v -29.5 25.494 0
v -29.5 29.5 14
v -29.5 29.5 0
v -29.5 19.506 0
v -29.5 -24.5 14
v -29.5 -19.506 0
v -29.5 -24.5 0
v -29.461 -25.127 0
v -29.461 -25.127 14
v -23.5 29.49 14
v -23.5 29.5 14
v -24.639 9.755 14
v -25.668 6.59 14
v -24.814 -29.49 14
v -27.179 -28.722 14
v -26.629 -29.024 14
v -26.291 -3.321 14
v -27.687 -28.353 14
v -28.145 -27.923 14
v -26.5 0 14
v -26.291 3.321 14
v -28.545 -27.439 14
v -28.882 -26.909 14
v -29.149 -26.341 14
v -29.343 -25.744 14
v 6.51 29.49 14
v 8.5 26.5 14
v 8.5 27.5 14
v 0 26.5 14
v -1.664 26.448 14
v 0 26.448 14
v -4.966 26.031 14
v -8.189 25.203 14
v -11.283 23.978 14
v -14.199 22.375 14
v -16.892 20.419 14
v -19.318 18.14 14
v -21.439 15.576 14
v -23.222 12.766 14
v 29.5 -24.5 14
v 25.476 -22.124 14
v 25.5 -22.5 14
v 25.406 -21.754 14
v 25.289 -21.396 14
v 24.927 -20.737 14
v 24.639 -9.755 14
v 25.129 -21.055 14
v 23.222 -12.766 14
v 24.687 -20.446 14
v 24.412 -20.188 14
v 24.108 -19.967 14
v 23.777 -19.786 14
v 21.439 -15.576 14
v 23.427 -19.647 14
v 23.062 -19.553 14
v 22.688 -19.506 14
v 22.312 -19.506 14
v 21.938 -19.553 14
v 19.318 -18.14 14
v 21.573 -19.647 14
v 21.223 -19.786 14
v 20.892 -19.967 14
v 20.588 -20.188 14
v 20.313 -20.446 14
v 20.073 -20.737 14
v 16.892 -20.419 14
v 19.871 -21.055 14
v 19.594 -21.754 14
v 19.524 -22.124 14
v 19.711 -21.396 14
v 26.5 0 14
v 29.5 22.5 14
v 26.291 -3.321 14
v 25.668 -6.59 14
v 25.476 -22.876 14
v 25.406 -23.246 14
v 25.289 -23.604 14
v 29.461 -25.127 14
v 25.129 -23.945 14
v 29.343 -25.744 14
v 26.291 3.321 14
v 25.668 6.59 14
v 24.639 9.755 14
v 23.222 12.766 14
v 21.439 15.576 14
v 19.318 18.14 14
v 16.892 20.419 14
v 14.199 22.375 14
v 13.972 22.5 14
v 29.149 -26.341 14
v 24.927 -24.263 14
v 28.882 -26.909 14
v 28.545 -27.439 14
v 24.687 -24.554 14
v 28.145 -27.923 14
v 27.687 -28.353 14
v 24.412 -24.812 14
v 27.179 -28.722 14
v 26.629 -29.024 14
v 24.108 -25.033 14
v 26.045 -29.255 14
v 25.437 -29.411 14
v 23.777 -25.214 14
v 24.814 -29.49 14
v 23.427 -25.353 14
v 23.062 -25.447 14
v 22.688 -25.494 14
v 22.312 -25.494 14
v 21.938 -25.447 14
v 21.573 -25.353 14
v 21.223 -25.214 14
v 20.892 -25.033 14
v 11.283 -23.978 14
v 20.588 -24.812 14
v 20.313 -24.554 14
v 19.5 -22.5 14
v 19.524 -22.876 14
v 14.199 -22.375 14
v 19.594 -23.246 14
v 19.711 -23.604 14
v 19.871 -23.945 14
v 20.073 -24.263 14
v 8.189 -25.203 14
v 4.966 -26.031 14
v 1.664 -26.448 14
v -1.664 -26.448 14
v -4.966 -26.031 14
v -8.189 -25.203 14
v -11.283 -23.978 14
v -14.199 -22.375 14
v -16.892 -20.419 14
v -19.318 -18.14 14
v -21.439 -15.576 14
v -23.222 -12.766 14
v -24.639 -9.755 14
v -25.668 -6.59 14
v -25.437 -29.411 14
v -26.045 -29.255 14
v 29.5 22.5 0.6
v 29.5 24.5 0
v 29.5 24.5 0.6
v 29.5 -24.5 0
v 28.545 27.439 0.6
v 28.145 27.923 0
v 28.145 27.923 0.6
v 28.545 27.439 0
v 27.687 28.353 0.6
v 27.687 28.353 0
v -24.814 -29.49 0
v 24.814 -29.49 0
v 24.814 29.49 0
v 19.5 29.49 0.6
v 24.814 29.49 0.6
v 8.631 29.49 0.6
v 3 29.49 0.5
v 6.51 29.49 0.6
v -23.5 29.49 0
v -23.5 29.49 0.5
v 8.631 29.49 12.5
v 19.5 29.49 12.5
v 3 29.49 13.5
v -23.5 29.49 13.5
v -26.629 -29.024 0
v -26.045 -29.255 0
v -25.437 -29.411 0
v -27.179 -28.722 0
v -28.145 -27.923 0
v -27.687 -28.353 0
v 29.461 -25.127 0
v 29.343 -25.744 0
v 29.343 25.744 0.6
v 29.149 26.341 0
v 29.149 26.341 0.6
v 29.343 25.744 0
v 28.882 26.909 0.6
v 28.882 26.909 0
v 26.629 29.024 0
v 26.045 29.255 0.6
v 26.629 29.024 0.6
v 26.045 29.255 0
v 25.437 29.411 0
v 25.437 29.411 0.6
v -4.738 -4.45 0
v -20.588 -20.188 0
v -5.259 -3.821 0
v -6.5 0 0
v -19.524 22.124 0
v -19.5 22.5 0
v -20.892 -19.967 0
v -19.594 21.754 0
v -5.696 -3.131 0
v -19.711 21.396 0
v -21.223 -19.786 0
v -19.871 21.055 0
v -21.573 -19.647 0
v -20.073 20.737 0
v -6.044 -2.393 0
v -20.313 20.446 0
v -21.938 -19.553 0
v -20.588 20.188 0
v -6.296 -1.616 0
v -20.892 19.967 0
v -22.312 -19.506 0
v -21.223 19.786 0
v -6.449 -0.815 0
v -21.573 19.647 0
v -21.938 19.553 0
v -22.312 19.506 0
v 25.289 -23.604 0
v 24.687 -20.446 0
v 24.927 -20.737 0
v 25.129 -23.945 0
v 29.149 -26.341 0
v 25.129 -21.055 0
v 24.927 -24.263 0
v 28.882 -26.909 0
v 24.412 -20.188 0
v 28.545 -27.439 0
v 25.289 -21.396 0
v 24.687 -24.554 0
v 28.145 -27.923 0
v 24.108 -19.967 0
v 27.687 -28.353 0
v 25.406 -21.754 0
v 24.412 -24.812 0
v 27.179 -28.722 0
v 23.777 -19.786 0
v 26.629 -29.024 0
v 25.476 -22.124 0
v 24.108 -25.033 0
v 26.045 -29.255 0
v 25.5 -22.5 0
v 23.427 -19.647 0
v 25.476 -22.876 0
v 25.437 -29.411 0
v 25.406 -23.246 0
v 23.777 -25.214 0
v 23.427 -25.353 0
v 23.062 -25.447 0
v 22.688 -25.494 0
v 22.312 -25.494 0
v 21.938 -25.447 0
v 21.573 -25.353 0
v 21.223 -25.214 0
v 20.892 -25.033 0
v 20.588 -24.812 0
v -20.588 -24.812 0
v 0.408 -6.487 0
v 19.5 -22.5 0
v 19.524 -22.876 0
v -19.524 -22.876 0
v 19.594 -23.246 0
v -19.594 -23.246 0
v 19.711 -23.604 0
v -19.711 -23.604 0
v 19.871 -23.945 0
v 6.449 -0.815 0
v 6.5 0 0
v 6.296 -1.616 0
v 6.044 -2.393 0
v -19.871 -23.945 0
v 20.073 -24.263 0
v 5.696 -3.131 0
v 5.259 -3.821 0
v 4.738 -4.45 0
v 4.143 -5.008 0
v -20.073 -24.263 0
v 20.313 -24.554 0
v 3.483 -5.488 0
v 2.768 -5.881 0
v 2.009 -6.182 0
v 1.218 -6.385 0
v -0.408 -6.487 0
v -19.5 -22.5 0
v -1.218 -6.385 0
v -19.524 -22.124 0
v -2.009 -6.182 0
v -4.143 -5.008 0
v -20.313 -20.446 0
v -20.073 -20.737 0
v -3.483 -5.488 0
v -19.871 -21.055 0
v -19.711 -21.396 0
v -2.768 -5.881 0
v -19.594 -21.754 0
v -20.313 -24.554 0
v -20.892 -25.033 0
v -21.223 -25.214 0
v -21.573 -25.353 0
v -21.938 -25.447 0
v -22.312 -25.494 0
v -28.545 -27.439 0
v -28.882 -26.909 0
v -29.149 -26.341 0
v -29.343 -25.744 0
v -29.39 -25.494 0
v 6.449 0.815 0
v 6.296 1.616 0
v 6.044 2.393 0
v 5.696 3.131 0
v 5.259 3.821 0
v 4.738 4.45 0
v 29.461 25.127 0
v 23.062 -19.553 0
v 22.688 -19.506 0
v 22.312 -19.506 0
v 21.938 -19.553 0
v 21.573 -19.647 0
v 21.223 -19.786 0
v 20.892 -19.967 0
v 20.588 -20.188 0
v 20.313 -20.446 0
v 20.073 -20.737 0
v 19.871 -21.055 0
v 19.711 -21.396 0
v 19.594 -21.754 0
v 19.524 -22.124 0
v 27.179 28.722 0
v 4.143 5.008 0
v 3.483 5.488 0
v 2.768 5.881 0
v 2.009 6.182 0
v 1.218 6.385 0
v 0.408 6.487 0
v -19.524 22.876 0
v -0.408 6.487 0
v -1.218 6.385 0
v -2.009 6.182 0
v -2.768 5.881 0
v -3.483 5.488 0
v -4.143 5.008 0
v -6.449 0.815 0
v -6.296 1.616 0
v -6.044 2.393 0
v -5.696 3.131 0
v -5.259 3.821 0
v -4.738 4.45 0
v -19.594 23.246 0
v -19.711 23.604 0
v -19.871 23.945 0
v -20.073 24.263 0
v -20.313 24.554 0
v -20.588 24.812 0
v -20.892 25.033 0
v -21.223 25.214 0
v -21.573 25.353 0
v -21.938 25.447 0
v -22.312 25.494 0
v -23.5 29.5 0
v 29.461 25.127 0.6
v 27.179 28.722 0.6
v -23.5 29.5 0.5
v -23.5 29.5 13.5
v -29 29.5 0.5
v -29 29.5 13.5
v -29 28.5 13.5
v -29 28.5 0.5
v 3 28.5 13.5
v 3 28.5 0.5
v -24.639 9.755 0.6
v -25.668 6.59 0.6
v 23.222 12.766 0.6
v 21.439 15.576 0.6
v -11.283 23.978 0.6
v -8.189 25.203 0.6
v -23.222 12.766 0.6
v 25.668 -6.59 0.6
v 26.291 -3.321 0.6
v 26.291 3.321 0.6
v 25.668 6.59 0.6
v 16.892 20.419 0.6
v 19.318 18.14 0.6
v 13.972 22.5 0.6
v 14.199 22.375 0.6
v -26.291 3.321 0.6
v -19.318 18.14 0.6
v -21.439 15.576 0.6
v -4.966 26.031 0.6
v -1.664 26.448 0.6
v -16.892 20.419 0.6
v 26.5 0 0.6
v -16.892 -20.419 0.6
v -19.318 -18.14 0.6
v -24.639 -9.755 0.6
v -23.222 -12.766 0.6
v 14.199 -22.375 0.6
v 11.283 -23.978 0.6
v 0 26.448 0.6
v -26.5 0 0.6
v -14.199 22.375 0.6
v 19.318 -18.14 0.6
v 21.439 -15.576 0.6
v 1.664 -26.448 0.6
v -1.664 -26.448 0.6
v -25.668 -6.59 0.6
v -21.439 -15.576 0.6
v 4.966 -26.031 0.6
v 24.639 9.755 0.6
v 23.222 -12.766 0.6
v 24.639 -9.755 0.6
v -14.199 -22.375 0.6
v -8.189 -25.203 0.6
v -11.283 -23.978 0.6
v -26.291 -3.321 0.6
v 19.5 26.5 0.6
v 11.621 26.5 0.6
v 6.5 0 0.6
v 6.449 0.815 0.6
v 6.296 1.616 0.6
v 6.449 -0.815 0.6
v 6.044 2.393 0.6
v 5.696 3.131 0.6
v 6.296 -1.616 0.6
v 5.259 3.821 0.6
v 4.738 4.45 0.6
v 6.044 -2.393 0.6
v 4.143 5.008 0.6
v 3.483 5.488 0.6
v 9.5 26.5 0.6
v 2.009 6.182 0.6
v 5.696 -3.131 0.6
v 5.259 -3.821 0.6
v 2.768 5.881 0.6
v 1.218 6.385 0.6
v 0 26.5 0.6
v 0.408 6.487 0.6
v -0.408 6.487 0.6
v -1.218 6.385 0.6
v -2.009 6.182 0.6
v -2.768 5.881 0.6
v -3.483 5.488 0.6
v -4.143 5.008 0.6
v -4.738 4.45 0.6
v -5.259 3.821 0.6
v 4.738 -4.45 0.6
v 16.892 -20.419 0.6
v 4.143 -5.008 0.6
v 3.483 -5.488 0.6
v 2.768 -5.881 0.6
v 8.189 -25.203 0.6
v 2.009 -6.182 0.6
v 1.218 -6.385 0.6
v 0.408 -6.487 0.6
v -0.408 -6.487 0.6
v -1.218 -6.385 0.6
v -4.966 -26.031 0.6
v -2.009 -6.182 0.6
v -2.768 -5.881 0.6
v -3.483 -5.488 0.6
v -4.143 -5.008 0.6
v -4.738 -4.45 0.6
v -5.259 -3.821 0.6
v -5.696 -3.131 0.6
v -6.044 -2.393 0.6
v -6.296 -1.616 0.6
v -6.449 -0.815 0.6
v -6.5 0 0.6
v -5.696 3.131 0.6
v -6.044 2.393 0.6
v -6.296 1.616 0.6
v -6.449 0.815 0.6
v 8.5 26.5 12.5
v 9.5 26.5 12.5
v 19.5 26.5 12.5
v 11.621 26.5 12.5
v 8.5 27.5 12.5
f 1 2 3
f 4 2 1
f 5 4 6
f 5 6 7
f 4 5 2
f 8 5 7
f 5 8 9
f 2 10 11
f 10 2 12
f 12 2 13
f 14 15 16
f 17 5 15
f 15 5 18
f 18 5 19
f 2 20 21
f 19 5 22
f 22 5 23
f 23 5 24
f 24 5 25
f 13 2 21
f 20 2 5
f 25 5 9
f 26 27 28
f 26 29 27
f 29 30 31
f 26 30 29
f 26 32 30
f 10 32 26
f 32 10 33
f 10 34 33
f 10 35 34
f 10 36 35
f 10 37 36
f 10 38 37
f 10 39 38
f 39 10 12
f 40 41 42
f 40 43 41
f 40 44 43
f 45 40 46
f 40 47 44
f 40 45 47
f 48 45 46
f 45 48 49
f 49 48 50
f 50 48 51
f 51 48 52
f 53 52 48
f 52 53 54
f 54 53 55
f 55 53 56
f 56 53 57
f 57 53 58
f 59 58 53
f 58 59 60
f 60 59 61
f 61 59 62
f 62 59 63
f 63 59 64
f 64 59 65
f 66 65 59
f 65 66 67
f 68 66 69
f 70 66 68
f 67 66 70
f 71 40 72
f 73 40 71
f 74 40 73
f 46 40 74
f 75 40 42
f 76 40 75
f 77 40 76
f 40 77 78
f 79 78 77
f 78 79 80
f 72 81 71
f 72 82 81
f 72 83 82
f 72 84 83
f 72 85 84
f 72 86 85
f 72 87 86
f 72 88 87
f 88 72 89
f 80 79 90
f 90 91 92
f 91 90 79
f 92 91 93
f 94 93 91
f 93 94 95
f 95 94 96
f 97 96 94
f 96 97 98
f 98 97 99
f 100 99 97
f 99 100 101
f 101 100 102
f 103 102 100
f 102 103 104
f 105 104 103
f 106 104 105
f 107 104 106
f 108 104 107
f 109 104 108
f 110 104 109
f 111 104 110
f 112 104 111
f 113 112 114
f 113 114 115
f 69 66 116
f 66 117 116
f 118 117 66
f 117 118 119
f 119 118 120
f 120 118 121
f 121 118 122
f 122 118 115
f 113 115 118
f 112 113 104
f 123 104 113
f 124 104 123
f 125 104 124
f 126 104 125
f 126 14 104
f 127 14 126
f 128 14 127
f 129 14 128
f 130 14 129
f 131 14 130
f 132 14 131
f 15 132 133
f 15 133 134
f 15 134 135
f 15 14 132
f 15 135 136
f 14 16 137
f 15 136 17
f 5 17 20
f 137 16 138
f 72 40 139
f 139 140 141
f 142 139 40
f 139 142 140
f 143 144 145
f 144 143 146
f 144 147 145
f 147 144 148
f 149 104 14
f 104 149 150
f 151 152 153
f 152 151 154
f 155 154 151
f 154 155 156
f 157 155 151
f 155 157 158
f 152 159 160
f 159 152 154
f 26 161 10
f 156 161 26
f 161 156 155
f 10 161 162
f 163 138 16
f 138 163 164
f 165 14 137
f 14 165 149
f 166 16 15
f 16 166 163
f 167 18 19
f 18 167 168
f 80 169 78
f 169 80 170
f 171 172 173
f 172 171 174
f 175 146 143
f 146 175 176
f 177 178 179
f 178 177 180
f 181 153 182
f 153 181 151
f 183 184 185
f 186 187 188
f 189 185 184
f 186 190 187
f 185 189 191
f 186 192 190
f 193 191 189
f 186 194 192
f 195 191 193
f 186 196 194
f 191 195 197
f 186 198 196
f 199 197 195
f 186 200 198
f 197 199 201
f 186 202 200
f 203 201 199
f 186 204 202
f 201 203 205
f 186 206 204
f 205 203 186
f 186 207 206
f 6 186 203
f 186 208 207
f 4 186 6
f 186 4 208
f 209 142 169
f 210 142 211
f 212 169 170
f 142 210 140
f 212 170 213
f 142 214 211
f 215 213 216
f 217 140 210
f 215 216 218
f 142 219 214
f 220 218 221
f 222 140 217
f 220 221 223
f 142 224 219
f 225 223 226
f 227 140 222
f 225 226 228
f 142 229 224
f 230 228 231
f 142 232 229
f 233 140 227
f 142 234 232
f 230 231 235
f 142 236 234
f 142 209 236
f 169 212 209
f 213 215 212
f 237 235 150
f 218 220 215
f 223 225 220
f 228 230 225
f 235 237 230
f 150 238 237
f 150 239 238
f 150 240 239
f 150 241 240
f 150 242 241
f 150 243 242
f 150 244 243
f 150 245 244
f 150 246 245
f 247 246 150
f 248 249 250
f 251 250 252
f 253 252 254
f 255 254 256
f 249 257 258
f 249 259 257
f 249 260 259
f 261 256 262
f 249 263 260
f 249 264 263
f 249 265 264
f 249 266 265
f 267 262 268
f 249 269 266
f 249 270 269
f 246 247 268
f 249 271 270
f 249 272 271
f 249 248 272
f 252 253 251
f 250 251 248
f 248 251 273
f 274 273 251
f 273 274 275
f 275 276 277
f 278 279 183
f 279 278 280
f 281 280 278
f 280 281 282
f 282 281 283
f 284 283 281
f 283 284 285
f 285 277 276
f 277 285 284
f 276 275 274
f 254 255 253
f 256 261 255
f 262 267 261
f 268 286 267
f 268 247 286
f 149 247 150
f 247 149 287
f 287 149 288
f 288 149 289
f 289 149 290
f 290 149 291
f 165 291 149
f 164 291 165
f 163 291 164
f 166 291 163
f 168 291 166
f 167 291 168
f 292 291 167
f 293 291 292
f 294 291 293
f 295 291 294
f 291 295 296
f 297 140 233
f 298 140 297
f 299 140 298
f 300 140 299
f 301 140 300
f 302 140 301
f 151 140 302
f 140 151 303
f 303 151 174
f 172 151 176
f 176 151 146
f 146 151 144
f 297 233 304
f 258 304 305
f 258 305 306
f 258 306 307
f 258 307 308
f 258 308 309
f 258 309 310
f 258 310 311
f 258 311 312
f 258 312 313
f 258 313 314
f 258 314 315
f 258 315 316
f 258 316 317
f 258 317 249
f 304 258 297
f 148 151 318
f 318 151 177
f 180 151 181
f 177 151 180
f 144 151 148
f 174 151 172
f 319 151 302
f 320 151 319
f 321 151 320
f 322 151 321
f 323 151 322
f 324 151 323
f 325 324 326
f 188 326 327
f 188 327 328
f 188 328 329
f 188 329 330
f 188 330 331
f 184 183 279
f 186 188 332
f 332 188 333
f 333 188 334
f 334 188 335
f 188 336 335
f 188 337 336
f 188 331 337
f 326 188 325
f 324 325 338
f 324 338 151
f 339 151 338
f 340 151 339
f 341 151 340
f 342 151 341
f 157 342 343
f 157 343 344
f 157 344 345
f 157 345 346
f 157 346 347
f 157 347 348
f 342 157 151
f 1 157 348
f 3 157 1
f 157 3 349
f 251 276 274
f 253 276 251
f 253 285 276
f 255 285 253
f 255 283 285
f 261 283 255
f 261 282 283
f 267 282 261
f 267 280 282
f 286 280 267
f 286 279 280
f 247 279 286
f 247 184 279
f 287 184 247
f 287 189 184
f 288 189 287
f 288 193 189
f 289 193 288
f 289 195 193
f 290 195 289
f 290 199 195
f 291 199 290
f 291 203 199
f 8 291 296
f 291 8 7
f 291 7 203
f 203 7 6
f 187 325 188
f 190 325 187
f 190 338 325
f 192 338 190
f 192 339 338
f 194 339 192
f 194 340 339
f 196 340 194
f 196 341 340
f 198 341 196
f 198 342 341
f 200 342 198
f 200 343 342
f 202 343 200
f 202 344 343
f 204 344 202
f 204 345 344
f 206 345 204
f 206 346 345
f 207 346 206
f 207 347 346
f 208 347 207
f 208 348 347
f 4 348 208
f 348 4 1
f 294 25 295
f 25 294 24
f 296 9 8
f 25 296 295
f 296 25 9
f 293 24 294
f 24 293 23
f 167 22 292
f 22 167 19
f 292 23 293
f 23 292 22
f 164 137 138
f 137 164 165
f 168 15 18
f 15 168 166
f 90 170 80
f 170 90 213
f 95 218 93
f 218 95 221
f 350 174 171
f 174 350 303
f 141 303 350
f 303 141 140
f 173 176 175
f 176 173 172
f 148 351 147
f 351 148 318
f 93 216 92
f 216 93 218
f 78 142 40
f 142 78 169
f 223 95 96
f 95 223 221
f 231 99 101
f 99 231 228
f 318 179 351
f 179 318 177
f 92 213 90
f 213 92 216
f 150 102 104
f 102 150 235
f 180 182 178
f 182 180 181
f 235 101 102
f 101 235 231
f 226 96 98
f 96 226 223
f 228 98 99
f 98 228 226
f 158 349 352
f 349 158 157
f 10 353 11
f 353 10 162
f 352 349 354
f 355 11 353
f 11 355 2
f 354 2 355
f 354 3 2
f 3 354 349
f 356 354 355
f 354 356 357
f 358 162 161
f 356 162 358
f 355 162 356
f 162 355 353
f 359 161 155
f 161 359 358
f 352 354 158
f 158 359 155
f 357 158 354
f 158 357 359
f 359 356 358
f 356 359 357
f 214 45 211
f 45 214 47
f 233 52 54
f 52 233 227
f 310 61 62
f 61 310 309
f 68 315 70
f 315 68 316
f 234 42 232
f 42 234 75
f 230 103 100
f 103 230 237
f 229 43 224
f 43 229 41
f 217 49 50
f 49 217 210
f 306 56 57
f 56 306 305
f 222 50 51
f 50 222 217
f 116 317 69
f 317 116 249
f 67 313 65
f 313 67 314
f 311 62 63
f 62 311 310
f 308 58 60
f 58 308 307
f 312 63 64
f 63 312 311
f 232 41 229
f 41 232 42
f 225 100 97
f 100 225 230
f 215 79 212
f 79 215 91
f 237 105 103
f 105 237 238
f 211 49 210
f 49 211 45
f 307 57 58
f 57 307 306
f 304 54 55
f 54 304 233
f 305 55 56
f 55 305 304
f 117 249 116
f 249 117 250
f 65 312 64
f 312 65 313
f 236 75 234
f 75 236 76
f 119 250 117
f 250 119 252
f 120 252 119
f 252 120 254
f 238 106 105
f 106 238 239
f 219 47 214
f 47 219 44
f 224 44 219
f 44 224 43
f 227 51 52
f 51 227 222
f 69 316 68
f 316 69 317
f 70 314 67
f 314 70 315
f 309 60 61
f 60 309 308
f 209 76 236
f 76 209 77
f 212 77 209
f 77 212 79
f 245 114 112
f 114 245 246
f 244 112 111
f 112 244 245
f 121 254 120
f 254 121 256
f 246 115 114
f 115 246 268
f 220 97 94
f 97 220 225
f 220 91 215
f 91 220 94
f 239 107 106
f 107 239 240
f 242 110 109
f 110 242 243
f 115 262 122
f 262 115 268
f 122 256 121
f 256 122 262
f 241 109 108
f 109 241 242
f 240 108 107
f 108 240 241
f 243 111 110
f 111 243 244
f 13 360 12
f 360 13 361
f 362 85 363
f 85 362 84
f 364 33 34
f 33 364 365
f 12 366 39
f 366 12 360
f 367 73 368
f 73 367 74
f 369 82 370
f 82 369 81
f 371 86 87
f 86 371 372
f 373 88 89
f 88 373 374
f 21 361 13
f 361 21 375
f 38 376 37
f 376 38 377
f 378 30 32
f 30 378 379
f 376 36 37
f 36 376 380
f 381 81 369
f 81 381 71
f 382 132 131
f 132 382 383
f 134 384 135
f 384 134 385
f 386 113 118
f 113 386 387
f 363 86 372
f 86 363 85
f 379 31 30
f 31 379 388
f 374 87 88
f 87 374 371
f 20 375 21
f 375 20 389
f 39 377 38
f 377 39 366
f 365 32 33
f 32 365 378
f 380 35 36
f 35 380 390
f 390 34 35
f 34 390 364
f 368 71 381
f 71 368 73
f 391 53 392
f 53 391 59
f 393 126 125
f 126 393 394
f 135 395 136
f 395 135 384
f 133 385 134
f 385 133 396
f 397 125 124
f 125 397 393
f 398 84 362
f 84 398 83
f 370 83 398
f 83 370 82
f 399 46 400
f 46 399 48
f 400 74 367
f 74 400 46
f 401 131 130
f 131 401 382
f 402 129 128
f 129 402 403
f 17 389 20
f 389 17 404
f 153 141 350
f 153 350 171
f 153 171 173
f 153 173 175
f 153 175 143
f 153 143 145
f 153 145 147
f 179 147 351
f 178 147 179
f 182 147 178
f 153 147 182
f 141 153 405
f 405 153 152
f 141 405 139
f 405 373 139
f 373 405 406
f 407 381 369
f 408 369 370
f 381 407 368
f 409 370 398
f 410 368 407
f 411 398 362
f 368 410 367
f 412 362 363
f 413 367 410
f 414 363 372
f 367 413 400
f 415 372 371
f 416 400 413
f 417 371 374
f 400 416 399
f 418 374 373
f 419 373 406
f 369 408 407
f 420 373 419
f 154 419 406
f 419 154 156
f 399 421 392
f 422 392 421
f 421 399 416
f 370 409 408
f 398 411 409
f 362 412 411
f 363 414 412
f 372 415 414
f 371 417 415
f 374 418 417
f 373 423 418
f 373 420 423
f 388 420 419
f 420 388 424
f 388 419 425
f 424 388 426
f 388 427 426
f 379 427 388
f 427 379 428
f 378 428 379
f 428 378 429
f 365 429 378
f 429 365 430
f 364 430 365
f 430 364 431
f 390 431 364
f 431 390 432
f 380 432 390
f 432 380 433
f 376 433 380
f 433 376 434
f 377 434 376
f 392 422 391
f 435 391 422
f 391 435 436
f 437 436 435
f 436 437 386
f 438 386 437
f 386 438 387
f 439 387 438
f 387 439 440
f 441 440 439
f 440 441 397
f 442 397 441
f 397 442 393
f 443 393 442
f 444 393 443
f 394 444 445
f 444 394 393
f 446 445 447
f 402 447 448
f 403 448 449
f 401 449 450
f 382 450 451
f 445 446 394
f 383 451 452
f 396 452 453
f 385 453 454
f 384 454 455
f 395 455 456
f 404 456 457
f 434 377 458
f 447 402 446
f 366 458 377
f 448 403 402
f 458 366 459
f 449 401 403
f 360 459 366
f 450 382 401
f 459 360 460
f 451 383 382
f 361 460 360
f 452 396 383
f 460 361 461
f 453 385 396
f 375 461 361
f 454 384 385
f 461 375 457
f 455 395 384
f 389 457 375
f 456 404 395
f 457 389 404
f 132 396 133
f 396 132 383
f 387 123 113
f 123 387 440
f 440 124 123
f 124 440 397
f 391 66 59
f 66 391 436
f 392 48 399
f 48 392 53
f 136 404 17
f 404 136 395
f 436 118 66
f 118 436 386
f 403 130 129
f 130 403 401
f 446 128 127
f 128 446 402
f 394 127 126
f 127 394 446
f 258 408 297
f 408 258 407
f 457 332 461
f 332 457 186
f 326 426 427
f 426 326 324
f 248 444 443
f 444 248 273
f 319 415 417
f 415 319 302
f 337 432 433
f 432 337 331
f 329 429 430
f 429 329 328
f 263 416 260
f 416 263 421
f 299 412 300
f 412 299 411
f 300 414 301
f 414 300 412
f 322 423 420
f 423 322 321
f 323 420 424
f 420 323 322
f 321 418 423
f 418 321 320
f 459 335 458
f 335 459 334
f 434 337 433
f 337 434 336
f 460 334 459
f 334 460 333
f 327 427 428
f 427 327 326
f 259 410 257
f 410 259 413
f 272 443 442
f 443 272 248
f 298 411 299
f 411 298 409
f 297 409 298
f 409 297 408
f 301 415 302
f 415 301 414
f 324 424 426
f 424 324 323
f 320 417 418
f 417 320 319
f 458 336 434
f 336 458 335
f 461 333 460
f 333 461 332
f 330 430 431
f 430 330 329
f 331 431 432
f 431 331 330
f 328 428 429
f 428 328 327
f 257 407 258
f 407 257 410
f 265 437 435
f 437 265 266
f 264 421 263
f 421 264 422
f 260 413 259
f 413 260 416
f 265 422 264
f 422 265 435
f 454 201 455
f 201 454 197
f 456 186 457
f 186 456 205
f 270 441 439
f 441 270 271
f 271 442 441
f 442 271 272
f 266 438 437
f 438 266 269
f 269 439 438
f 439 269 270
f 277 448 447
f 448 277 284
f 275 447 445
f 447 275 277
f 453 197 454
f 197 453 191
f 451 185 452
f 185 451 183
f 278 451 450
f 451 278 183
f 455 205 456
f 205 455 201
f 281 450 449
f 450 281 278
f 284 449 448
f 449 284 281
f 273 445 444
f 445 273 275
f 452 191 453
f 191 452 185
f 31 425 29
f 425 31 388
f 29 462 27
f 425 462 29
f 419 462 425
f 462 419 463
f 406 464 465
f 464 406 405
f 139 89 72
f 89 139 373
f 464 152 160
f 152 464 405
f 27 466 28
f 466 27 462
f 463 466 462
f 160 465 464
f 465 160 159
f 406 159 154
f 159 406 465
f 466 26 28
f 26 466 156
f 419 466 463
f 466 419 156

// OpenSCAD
$fn = 50;


difference() {
	union() {
		hull() {
			translate(v = [-24.5000000000, 24.5000000000, 0]) {
				cylinder(h = 14, r = 5);
			}
			translate(v = [24.5000000000, 24.5000000000, 0]) {
				cylinder(h = 14, r = 5);
			}
			translate(v = [-24.5000000000, -24.5000000000, 0]) {
				cylinder(h = 14, r = 5);
			}
			translate(v = [24.5000000000, -24.5000000000, 0]) {
				cylinder(h = 14, r = 5);
			}
		}
		translate(v = [-29.5000000000, 23.5000000000, 0]) {
			cube(size = [6, 6, 14]);
		}
	}
	union() {
		translate(v = [-30.0000000000, -22.5000000000, -250.0000000000]) {
			rotate(a = [0, 0, 0]) {
				difference() {
					union() {
						hull() {
							translate(v = [7.5000000000, 0, 0]) {
								cylinder(h = 250, r = 3.0000000000, r1 = 3.0000000000, r2 = 3.0000000000);
							}
							translate(v = [-7.5000000000, 0, 0]) {
								cylinder(h = 250, r = 3.0000000000, r1 = 3.0000000000, r2 = 3.0000000000);
							}
						}
					}
					union();
				}
			}
		}
		translate(v = [-30.0000000000, 22.5000000000, -250.0000000000]) {
			rotate(a = [0, 0, 0]) {
				difference() {
					union() {
						hull() {
							translate(v = [7.5000000000, 0, 0]) {
								cylinder(h = 250, r = 3.0000000000, r1 = 3.0000000000, r2 = 3.0000000000);
							}
							translate(v = [-7.5000000000, 0, 0]) {
								cylinder(h = 250, r = 3.0000000000, r1 = 3.0000000000, r2 = 3.0000000000);
							}
						}
					}
					union();
				}
			}
		}
		translate(v = [-29.0000000000, 28.5000000000, 0.5000000000]) {
			cube(size = [32, 1, 13.0000000000]);
		}
		translate(v = [22.5000000000, -22.5000000000, -50.0000000000]) {
			cylinder(h = 100, r = 3.0000000000);
		}
		translate(v = [0, 0, 0.6000000000]) {
			cylinder(h = 16.4000000000, r = 26.5000000000);
		}
		translate(v = [0, 0, -7.0000000000]) {
			cylinder(h = 14, r = 6.5000000000);
		}
		translate(v = [0.0000000000, 22.5000000000, 0.6000000000]) {
			cube(size = [29.5000000000, 4, 16.4000000000]);
		}
		translate(v = [19.5000000000, 22.5000000000, 0.6000000000]) {
			cube(size = [10, 7, 16.4000000000]);
		}
		translate(v = [8.5000000000, 22.5000000000, 12.5000000000]) {
			cube(size = [21, 7, 1.5000000000]);
		}
		translate(v = [5.7500000000, 30.2500000000, 0.6000000000]) {
			rotate(a = [0, 0, -45]) {
				cube(size = [7.5000000000, 1.5000000000, 16.4000000000]);
			}
		}
		translate(v = [5.0610000000, 20.5000000000, 0.6000000000]) {
			cube(size = [7.5000000000, 2, 13.4000000000]);
		}
	}
}
